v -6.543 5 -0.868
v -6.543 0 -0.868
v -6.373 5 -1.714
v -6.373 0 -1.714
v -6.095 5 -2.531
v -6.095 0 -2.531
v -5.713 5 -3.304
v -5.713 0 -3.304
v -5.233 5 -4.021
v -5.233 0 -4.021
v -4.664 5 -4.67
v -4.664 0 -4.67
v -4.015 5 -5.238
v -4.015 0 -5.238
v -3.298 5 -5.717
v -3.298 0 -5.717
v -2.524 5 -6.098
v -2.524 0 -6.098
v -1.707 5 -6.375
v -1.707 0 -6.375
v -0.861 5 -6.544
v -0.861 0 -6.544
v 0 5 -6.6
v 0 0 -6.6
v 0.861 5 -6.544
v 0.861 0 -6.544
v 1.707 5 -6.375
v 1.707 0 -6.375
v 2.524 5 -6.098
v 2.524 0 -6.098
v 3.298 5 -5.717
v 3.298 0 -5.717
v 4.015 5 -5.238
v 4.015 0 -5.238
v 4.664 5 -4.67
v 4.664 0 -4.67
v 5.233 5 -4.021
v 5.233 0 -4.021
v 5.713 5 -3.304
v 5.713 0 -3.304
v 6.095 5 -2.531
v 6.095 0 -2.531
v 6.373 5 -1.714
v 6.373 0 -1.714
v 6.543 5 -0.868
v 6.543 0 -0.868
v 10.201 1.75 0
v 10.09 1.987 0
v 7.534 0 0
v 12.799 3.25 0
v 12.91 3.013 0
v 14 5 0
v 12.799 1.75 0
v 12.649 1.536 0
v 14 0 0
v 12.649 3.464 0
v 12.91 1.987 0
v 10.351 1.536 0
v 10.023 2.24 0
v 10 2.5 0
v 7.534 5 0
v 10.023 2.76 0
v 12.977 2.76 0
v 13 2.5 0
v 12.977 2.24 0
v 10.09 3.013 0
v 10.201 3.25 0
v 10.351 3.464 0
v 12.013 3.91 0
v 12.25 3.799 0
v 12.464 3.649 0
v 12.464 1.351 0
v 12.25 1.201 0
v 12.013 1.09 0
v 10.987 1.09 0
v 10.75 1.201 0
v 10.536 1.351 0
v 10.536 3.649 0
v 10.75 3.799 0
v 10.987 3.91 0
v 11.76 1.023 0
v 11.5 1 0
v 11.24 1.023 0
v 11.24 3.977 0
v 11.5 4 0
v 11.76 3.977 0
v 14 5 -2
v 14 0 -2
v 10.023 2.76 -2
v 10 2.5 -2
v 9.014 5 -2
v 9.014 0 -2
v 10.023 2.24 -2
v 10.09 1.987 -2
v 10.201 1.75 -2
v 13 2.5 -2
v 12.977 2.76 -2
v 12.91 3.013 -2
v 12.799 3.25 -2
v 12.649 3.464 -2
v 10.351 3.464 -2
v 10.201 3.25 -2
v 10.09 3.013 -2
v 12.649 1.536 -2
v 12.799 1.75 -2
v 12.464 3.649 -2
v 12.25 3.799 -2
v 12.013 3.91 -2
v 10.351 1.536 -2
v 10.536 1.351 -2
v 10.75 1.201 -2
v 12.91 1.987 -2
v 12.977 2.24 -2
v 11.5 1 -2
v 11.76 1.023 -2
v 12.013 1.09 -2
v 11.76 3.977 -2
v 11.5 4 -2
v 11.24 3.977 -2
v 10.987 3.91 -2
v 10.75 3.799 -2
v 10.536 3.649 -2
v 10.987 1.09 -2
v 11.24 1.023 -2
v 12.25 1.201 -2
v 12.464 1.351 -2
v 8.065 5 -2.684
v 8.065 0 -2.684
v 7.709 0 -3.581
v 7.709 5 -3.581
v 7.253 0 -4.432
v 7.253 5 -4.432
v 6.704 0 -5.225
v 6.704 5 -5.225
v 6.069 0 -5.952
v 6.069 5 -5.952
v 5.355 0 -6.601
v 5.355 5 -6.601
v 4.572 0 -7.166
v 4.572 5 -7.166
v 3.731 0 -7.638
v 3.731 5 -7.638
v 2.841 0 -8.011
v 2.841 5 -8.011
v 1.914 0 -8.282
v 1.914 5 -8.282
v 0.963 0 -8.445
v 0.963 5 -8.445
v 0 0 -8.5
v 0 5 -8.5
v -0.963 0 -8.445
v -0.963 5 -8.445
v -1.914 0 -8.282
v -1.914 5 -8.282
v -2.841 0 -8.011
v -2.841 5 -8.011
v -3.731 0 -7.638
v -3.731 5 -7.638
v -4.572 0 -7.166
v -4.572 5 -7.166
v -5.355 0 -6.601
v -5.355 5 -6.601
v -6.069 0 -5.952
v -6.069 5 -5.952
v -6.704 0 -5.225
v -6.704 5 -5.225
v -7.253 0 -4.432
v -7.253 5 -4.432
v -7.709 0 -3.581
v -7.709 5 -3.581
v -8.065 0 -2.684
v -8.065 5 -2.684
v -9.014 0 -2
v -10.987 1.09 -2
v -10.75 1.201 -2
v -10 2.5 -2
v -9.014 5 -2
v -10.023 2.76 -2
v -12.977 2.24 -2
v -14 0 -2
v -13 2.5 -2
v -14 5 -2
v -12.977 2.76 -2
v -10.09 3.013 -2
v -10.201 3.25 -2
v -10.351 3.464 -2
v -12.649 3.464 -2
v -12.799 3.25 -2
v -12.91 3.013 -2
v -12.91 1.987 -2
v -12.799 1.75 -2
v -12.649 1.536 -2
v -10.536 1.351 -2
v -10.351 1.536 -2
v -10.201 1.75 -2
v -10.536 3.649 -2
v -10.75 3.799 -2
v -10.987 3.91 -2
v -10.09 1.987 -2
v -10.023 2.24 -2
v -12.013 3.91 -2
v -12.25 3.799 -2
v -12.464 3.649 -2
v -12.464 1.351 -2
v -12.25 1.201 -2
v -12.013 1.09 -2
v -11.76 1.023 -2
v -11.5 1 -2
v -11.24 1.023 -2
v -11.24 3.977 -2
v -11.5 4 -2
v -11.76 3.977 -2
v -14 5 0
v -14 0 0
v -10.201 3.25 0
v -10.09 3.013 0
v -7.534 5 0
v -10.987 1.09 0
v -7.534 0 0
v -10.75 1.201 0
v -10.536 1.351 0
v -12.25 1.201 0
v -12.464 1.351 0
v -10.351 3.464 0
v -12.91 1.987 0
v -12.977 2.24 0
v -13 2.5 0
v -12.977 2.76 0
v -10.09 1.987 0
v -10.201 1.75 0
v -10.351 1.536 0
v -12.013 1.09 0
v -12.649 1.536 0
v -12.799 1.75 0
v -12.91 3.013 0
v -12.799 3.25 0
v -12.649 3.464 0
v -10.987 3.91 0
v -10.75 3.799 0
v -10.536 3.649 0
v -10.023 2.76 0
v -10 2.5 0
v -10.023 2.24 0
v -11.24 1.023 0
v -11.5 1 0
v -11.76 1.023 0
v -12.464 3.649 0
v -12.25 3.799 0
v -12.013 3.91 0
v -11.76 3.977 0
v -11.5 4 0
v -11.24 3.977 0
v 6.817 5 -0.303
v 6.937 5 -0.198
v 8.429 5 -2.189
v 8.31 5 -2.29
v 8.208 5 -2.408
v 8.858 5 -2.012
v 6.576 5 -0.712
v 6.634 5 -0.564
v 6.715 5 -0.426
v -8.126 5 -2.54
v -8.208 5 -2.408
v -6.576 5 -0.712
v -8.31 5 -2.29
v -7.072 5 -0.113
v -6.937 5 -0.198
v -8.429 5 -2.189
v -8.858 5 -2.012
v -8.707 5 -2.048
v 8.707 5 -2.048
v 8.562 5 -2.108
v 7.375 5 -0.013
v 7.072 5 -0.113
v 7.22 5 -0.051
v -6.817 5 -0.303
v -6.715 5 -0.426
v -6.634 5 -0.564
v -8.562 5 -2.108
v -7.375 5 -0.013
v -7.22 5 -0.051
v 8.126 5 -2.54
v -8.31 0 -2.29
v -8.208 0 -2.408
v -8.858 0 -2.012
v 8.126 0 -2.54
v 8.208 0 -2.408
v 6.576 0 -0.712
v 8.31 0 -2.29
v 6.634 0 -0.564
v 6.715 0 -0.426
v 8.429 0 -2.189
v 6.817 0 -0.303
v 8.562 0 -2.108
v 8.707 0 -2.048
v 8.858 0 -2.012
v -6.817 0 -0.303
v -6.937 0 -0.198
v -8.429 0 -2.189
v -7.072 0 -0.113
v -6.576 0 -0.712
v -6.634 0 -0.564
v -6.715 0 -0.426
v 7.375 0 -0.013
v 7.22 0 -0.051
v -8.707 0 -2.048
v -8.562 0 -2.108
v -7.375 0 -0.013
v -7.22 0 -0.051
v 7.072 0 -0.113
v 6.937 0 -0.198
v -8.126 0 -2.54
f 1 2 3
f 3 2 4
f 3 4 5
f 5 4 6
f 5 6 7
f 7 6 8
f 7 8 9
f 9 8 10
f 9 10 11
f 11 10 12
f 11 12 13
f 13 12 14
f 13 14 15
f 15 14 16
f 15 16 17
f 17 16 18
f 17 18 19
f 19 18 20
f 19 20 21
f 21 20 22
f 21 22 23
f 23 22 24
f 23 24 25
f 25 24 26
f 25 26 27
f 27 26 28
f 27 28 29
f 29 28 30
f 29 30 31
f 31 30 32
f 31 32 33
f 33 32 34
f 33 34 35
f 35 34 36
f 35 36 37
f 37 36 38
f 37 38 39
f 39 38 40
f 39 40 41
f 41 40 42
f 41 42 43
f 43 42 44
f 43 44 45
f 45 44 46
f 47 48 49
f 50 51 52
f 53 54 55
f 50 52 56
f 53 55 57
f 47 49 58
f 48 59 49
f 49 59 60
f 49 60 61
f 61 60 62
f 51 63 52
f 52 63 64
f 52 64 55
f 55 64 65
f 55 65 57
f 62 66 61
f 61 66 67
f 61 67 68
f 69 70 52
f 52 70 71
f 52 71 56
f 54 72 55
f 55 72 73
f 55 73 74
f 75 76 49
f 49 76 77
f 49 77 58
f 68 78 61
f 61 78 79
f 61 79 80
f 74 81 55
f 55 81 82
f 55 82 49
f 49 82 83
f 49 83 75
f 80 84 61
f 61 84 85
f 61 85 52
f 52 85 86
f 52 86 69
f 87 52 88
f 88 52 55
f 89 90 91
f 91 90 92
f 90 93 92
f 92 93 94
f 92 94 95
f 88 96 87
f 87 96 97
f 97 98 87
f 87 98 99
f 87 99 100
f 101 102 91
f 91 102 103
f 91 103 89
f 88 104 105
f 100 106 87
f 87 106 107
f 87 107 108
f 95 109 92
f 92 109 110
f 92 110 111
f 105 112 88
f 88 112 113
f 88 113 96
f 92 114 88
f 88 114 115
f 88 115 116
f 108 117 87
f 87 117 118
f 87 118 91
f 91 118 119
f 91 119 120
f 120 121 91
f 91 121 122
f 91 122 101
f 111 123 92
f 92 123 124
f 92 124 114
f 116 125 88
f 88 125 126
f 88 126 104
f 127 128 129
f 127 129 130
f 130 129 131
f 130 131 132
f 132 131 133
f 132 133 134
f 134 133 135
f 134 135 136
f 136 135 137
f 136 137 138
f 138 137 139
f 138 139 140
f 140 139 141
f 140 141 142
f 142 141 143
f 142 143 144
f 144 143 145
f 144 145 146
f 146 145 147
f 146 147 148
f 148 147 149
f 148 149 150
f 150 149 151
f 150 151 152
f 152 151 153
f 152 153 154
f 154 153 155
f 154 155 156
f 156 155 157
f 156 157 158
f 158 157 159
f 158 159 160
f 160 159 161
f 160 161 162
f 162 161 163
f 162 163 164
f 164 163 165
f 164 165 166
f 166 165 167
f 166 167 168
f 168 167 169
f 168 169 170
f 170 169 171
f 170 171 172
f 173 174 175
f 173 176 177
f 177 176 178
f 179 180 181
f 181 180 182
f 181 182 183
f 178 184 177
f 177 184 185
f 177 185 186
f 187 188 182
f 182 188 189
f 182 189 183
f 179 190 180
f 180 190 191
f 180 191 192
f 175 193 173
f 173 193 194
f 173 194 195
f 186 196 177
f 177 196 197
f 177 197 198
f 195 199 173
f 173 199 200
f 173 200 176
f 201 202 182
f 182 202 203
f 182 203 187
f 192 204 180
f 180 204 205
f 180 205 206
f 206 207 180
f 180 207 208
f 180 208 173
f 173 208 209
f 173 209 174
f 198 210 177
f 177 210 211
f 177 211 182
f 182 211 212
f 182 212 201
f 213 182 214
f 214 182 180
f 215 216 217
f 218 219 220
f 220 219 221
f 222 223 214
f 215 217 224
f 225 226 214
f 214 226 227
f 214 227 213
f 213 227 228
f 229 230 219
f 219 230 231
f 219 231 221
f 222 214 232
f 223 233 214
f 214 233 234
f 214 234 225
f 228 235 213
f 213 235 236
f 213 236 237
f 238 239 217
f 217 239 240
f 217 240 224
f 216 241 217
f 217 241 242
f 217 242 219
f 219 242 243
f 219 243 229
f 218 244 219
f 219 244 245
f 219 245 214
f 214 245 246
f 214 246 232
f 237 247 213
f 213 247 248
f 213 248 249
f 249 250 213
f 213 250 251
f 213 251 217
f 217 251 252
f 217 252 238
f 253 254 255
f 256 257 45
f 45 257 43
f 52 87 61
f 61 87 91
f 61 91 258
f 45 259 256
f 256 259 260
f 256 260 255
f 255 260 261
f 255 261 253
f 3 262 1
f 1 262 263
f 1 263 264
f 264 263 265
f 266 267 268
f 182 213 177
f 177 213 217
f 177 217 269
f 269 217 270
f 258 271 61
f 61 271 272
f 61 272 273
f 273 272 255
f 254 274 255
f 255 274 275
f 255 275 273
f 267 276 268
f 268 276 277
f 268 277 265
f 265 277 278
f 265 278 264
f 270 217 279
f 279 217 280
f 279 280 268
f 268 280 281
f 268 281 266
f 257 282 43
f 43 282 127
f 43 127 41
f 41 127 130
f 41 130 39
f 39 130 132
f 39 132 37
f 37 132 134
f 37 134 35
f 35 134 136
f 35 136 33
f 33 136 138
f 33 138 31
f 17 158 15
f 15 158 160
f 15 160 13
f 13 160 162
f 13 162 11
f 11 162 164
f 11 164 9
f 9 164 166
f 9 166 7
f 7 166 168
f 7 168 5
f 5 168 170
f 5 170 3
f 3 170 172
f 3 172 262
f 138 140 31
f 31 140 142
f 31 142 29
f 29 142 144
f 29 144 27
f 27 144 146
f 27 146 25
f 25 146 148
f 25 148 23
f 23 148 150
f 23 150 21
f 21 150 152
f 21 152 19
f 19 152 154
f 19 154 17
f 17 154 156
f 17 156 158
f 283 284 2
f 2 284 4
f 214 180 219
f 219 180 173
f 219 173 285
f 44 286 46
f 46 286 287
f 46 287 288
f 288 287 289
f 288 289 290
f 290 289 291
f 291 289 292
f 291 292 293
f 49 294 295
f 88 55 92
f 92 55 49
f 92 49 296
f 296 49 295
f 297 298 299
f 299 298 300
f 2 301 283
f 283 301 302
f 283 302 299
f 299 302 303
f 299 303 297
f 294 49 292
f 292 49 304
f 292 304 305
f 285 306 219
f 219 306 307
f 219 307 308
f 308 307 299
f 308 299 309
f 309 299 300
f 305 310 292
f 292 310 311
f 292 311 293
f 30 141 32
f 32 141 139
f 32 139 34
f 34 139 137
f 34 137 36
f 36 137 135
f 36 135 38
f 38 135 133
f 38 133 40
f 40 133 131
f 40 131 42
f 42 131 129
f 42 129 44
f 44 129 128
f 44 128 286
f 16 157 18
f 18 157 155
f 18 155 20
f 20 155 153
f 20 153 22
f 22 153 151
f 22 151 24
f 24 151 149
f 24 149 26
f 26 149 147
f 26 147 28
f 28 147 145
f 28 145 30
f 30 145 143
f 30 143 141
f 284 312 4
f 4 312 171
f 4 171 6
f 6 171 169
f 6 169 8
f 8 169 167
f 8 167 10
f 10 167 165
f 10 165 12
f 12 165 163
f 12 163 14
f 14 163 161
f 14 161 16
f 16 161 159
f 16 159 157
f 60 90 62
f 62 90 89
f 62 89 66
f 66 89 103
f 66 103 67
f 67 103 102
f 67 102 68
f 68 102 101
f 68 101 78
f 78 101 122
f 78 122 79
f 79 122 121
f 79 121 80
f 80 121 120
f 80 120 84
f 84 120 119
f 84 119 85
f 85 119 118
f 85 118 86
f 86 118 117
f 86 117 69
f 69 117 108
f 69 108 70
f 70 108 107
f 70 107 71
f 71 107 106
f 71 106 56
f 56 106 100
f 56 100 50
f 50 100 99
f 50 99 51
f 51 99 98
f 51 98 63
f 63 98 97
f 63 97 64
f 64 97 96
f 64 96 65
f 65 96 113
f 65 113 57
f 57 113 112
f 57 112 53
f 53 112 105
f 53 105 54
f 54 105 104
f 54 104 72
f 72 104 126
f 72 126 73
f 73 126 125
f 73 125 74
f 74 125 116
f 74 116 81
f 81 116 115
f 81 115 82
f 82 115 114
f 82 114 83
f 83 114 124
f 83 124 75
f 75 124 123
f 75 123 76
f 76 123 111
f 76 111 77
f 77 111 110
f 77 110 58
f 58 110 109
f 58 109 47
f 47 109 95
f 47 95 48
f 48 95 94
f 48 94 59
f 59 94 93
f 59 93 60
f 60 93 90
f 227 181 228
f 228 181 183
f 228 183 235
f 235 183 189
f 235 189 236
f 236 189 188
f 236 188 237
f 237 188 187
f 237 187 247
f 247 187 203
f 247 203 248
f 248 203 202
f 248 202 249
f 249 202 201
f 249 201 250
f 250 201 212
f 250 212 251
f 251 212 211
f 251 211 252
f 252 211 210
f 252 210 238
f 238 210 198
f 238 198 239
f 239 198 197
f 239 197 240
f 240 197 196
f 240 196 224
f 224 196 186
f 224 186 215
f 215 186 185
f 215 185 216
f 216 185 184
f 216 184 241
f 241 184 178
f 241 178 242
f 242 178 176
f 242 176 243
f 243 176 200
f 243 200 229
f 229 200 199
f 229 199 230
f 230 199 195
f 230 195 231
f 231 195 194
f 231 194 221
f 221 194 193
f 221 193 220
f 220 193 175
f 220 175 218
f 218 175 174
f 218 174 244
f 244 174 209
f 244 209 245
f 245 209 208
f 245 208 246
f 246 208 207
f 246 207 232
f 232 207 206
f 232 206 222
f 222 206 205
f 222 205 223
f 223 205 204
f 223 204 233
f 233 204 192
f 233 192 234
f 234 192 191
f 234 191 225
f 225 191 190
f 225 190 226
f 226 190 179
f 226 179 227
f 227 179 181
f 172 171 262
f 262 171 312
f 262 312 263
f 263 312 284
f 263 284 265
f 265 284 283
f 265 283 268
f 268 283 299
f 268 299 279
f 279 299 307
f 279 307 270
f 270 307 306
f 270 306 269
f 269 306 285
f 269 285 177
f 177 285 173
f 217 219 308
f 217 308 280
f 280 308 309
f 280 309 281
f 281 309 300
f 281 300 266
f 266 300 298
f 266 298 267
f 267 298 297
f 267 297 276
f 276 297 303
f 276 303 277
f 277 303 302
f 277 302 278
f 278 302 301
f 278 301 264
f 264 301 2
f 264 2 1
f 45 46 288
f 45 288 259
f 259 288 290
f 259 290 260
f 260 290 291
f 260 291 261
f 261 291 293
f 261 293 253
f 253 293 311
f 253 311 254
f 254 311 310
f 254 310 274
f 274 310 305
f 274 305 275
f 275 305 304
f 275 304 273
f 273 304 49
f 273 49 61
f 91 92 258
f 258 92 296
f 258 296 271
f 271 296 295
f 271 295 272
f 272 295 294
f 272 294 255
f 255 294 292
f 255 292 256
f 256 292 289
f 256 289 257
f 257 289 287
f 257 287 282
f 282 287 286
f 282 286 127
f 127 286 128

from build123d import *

# Parameters (mm, degrees)
BOSS_EXTRUDE1_DEPTH = 5
SKETCH2_R           = 1.5
CUT_EXTRUDE1_DEPTH  = 17.22498074
FILLET1_R           = 1


with BuildPart() as part:
    # Sketch1 → Boss-Extrude1 (new body)
    with BuildSketch(Plane(origin=(0, 0, 0), x_dir=(1, 0, 0), z_dir=(0, 1, 0))):
        with BuildLine():
            Line((-14, 0), (-8.5, 0))
            Line((-8.5, 0), (-6.6, 0))
            ThreePointArc((-6.6, 0), (-4.666904756, 4.666904756), (0, 6.6))
            Line((0, 6.6), (0, 8.5))
            ThreePointArc((0, 8.5), (-5.25594901, 6.680194608), (-8.261355821, 2))
            Line((-8.261355821, 2), (-14, 2))
            Line((-14, 2), (-14, 0))
        make_face()
        with BuildLine():
            Line((0, 8.5), (0, 6.6))
            ThreePointArc((0, 6.6), (4.666904756, 4.666904756), (6.6, 0))
            Line((6.6, 0), (8.5, 0))
            Line((8.5, 0), (14, 0))
            Line((14, 0), (14, 2))
            Line((14, 2), (8.261355821, 2))
            ThreePointArc((8.261355821, 2), (5.25594901, 6.680194608), (0, 8.5))
        make_face()
    extrude(amount=BOSS_EXTRUDE1_DEPTH)

    # Sketch2 → Cut-Extrude1 (cut, through all)
    with BuildSketch(Plane(origin=(0, 0, -2), x_dir=(-1, 0, 0), z_dir=(0, 0, -1))):
        with Locations((-11.5, 2.5)):
            Circle(SKETCH2_R)
        with Locations(Location((11.5, 2.5, 0), (0, 0, 180))):
            Circle(SKETCH2_R)
    extrude(amount=-CUT_EXTRUDE1_DEPTH, mode=Mode.SUBTRACT)

    # Fillet1
    fillet1_edges = [part.edges().sort_by_distance(p)[0] for p in [
        (-6.6, 2.5, 0),
        (-8.261355821, 2.5, -2),
        (8.261355821, 2.5, -2),
        (6.6, 2.5, 0),
    ]]
    fillet(fillet1_edges, radius=FILLET1_R)


solid = part.part
